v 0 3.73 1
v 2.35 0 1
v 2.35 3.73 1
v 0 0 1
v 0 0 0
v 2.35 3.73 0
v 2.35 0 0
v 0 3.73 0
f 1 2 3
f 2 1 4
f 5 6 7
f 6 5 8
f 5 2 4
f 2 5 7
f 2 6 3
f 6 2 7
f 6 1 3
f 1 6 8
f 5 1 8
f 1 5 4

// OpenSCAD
/* Warning, this is a very basic generator with a lot of approximation 
input data : [VFBGA, E9B, 2.35x3.73x1mm, 8, , A, C04-21199A]
generated by com.zoubworld.electronics.cad.model3d.Basic
Date : Sun Feb 15 10:50:49 CET 2026
*/

//body
color("black")
translate([0,0,0])
cube([2.35,3.73,1.0], center=false);
